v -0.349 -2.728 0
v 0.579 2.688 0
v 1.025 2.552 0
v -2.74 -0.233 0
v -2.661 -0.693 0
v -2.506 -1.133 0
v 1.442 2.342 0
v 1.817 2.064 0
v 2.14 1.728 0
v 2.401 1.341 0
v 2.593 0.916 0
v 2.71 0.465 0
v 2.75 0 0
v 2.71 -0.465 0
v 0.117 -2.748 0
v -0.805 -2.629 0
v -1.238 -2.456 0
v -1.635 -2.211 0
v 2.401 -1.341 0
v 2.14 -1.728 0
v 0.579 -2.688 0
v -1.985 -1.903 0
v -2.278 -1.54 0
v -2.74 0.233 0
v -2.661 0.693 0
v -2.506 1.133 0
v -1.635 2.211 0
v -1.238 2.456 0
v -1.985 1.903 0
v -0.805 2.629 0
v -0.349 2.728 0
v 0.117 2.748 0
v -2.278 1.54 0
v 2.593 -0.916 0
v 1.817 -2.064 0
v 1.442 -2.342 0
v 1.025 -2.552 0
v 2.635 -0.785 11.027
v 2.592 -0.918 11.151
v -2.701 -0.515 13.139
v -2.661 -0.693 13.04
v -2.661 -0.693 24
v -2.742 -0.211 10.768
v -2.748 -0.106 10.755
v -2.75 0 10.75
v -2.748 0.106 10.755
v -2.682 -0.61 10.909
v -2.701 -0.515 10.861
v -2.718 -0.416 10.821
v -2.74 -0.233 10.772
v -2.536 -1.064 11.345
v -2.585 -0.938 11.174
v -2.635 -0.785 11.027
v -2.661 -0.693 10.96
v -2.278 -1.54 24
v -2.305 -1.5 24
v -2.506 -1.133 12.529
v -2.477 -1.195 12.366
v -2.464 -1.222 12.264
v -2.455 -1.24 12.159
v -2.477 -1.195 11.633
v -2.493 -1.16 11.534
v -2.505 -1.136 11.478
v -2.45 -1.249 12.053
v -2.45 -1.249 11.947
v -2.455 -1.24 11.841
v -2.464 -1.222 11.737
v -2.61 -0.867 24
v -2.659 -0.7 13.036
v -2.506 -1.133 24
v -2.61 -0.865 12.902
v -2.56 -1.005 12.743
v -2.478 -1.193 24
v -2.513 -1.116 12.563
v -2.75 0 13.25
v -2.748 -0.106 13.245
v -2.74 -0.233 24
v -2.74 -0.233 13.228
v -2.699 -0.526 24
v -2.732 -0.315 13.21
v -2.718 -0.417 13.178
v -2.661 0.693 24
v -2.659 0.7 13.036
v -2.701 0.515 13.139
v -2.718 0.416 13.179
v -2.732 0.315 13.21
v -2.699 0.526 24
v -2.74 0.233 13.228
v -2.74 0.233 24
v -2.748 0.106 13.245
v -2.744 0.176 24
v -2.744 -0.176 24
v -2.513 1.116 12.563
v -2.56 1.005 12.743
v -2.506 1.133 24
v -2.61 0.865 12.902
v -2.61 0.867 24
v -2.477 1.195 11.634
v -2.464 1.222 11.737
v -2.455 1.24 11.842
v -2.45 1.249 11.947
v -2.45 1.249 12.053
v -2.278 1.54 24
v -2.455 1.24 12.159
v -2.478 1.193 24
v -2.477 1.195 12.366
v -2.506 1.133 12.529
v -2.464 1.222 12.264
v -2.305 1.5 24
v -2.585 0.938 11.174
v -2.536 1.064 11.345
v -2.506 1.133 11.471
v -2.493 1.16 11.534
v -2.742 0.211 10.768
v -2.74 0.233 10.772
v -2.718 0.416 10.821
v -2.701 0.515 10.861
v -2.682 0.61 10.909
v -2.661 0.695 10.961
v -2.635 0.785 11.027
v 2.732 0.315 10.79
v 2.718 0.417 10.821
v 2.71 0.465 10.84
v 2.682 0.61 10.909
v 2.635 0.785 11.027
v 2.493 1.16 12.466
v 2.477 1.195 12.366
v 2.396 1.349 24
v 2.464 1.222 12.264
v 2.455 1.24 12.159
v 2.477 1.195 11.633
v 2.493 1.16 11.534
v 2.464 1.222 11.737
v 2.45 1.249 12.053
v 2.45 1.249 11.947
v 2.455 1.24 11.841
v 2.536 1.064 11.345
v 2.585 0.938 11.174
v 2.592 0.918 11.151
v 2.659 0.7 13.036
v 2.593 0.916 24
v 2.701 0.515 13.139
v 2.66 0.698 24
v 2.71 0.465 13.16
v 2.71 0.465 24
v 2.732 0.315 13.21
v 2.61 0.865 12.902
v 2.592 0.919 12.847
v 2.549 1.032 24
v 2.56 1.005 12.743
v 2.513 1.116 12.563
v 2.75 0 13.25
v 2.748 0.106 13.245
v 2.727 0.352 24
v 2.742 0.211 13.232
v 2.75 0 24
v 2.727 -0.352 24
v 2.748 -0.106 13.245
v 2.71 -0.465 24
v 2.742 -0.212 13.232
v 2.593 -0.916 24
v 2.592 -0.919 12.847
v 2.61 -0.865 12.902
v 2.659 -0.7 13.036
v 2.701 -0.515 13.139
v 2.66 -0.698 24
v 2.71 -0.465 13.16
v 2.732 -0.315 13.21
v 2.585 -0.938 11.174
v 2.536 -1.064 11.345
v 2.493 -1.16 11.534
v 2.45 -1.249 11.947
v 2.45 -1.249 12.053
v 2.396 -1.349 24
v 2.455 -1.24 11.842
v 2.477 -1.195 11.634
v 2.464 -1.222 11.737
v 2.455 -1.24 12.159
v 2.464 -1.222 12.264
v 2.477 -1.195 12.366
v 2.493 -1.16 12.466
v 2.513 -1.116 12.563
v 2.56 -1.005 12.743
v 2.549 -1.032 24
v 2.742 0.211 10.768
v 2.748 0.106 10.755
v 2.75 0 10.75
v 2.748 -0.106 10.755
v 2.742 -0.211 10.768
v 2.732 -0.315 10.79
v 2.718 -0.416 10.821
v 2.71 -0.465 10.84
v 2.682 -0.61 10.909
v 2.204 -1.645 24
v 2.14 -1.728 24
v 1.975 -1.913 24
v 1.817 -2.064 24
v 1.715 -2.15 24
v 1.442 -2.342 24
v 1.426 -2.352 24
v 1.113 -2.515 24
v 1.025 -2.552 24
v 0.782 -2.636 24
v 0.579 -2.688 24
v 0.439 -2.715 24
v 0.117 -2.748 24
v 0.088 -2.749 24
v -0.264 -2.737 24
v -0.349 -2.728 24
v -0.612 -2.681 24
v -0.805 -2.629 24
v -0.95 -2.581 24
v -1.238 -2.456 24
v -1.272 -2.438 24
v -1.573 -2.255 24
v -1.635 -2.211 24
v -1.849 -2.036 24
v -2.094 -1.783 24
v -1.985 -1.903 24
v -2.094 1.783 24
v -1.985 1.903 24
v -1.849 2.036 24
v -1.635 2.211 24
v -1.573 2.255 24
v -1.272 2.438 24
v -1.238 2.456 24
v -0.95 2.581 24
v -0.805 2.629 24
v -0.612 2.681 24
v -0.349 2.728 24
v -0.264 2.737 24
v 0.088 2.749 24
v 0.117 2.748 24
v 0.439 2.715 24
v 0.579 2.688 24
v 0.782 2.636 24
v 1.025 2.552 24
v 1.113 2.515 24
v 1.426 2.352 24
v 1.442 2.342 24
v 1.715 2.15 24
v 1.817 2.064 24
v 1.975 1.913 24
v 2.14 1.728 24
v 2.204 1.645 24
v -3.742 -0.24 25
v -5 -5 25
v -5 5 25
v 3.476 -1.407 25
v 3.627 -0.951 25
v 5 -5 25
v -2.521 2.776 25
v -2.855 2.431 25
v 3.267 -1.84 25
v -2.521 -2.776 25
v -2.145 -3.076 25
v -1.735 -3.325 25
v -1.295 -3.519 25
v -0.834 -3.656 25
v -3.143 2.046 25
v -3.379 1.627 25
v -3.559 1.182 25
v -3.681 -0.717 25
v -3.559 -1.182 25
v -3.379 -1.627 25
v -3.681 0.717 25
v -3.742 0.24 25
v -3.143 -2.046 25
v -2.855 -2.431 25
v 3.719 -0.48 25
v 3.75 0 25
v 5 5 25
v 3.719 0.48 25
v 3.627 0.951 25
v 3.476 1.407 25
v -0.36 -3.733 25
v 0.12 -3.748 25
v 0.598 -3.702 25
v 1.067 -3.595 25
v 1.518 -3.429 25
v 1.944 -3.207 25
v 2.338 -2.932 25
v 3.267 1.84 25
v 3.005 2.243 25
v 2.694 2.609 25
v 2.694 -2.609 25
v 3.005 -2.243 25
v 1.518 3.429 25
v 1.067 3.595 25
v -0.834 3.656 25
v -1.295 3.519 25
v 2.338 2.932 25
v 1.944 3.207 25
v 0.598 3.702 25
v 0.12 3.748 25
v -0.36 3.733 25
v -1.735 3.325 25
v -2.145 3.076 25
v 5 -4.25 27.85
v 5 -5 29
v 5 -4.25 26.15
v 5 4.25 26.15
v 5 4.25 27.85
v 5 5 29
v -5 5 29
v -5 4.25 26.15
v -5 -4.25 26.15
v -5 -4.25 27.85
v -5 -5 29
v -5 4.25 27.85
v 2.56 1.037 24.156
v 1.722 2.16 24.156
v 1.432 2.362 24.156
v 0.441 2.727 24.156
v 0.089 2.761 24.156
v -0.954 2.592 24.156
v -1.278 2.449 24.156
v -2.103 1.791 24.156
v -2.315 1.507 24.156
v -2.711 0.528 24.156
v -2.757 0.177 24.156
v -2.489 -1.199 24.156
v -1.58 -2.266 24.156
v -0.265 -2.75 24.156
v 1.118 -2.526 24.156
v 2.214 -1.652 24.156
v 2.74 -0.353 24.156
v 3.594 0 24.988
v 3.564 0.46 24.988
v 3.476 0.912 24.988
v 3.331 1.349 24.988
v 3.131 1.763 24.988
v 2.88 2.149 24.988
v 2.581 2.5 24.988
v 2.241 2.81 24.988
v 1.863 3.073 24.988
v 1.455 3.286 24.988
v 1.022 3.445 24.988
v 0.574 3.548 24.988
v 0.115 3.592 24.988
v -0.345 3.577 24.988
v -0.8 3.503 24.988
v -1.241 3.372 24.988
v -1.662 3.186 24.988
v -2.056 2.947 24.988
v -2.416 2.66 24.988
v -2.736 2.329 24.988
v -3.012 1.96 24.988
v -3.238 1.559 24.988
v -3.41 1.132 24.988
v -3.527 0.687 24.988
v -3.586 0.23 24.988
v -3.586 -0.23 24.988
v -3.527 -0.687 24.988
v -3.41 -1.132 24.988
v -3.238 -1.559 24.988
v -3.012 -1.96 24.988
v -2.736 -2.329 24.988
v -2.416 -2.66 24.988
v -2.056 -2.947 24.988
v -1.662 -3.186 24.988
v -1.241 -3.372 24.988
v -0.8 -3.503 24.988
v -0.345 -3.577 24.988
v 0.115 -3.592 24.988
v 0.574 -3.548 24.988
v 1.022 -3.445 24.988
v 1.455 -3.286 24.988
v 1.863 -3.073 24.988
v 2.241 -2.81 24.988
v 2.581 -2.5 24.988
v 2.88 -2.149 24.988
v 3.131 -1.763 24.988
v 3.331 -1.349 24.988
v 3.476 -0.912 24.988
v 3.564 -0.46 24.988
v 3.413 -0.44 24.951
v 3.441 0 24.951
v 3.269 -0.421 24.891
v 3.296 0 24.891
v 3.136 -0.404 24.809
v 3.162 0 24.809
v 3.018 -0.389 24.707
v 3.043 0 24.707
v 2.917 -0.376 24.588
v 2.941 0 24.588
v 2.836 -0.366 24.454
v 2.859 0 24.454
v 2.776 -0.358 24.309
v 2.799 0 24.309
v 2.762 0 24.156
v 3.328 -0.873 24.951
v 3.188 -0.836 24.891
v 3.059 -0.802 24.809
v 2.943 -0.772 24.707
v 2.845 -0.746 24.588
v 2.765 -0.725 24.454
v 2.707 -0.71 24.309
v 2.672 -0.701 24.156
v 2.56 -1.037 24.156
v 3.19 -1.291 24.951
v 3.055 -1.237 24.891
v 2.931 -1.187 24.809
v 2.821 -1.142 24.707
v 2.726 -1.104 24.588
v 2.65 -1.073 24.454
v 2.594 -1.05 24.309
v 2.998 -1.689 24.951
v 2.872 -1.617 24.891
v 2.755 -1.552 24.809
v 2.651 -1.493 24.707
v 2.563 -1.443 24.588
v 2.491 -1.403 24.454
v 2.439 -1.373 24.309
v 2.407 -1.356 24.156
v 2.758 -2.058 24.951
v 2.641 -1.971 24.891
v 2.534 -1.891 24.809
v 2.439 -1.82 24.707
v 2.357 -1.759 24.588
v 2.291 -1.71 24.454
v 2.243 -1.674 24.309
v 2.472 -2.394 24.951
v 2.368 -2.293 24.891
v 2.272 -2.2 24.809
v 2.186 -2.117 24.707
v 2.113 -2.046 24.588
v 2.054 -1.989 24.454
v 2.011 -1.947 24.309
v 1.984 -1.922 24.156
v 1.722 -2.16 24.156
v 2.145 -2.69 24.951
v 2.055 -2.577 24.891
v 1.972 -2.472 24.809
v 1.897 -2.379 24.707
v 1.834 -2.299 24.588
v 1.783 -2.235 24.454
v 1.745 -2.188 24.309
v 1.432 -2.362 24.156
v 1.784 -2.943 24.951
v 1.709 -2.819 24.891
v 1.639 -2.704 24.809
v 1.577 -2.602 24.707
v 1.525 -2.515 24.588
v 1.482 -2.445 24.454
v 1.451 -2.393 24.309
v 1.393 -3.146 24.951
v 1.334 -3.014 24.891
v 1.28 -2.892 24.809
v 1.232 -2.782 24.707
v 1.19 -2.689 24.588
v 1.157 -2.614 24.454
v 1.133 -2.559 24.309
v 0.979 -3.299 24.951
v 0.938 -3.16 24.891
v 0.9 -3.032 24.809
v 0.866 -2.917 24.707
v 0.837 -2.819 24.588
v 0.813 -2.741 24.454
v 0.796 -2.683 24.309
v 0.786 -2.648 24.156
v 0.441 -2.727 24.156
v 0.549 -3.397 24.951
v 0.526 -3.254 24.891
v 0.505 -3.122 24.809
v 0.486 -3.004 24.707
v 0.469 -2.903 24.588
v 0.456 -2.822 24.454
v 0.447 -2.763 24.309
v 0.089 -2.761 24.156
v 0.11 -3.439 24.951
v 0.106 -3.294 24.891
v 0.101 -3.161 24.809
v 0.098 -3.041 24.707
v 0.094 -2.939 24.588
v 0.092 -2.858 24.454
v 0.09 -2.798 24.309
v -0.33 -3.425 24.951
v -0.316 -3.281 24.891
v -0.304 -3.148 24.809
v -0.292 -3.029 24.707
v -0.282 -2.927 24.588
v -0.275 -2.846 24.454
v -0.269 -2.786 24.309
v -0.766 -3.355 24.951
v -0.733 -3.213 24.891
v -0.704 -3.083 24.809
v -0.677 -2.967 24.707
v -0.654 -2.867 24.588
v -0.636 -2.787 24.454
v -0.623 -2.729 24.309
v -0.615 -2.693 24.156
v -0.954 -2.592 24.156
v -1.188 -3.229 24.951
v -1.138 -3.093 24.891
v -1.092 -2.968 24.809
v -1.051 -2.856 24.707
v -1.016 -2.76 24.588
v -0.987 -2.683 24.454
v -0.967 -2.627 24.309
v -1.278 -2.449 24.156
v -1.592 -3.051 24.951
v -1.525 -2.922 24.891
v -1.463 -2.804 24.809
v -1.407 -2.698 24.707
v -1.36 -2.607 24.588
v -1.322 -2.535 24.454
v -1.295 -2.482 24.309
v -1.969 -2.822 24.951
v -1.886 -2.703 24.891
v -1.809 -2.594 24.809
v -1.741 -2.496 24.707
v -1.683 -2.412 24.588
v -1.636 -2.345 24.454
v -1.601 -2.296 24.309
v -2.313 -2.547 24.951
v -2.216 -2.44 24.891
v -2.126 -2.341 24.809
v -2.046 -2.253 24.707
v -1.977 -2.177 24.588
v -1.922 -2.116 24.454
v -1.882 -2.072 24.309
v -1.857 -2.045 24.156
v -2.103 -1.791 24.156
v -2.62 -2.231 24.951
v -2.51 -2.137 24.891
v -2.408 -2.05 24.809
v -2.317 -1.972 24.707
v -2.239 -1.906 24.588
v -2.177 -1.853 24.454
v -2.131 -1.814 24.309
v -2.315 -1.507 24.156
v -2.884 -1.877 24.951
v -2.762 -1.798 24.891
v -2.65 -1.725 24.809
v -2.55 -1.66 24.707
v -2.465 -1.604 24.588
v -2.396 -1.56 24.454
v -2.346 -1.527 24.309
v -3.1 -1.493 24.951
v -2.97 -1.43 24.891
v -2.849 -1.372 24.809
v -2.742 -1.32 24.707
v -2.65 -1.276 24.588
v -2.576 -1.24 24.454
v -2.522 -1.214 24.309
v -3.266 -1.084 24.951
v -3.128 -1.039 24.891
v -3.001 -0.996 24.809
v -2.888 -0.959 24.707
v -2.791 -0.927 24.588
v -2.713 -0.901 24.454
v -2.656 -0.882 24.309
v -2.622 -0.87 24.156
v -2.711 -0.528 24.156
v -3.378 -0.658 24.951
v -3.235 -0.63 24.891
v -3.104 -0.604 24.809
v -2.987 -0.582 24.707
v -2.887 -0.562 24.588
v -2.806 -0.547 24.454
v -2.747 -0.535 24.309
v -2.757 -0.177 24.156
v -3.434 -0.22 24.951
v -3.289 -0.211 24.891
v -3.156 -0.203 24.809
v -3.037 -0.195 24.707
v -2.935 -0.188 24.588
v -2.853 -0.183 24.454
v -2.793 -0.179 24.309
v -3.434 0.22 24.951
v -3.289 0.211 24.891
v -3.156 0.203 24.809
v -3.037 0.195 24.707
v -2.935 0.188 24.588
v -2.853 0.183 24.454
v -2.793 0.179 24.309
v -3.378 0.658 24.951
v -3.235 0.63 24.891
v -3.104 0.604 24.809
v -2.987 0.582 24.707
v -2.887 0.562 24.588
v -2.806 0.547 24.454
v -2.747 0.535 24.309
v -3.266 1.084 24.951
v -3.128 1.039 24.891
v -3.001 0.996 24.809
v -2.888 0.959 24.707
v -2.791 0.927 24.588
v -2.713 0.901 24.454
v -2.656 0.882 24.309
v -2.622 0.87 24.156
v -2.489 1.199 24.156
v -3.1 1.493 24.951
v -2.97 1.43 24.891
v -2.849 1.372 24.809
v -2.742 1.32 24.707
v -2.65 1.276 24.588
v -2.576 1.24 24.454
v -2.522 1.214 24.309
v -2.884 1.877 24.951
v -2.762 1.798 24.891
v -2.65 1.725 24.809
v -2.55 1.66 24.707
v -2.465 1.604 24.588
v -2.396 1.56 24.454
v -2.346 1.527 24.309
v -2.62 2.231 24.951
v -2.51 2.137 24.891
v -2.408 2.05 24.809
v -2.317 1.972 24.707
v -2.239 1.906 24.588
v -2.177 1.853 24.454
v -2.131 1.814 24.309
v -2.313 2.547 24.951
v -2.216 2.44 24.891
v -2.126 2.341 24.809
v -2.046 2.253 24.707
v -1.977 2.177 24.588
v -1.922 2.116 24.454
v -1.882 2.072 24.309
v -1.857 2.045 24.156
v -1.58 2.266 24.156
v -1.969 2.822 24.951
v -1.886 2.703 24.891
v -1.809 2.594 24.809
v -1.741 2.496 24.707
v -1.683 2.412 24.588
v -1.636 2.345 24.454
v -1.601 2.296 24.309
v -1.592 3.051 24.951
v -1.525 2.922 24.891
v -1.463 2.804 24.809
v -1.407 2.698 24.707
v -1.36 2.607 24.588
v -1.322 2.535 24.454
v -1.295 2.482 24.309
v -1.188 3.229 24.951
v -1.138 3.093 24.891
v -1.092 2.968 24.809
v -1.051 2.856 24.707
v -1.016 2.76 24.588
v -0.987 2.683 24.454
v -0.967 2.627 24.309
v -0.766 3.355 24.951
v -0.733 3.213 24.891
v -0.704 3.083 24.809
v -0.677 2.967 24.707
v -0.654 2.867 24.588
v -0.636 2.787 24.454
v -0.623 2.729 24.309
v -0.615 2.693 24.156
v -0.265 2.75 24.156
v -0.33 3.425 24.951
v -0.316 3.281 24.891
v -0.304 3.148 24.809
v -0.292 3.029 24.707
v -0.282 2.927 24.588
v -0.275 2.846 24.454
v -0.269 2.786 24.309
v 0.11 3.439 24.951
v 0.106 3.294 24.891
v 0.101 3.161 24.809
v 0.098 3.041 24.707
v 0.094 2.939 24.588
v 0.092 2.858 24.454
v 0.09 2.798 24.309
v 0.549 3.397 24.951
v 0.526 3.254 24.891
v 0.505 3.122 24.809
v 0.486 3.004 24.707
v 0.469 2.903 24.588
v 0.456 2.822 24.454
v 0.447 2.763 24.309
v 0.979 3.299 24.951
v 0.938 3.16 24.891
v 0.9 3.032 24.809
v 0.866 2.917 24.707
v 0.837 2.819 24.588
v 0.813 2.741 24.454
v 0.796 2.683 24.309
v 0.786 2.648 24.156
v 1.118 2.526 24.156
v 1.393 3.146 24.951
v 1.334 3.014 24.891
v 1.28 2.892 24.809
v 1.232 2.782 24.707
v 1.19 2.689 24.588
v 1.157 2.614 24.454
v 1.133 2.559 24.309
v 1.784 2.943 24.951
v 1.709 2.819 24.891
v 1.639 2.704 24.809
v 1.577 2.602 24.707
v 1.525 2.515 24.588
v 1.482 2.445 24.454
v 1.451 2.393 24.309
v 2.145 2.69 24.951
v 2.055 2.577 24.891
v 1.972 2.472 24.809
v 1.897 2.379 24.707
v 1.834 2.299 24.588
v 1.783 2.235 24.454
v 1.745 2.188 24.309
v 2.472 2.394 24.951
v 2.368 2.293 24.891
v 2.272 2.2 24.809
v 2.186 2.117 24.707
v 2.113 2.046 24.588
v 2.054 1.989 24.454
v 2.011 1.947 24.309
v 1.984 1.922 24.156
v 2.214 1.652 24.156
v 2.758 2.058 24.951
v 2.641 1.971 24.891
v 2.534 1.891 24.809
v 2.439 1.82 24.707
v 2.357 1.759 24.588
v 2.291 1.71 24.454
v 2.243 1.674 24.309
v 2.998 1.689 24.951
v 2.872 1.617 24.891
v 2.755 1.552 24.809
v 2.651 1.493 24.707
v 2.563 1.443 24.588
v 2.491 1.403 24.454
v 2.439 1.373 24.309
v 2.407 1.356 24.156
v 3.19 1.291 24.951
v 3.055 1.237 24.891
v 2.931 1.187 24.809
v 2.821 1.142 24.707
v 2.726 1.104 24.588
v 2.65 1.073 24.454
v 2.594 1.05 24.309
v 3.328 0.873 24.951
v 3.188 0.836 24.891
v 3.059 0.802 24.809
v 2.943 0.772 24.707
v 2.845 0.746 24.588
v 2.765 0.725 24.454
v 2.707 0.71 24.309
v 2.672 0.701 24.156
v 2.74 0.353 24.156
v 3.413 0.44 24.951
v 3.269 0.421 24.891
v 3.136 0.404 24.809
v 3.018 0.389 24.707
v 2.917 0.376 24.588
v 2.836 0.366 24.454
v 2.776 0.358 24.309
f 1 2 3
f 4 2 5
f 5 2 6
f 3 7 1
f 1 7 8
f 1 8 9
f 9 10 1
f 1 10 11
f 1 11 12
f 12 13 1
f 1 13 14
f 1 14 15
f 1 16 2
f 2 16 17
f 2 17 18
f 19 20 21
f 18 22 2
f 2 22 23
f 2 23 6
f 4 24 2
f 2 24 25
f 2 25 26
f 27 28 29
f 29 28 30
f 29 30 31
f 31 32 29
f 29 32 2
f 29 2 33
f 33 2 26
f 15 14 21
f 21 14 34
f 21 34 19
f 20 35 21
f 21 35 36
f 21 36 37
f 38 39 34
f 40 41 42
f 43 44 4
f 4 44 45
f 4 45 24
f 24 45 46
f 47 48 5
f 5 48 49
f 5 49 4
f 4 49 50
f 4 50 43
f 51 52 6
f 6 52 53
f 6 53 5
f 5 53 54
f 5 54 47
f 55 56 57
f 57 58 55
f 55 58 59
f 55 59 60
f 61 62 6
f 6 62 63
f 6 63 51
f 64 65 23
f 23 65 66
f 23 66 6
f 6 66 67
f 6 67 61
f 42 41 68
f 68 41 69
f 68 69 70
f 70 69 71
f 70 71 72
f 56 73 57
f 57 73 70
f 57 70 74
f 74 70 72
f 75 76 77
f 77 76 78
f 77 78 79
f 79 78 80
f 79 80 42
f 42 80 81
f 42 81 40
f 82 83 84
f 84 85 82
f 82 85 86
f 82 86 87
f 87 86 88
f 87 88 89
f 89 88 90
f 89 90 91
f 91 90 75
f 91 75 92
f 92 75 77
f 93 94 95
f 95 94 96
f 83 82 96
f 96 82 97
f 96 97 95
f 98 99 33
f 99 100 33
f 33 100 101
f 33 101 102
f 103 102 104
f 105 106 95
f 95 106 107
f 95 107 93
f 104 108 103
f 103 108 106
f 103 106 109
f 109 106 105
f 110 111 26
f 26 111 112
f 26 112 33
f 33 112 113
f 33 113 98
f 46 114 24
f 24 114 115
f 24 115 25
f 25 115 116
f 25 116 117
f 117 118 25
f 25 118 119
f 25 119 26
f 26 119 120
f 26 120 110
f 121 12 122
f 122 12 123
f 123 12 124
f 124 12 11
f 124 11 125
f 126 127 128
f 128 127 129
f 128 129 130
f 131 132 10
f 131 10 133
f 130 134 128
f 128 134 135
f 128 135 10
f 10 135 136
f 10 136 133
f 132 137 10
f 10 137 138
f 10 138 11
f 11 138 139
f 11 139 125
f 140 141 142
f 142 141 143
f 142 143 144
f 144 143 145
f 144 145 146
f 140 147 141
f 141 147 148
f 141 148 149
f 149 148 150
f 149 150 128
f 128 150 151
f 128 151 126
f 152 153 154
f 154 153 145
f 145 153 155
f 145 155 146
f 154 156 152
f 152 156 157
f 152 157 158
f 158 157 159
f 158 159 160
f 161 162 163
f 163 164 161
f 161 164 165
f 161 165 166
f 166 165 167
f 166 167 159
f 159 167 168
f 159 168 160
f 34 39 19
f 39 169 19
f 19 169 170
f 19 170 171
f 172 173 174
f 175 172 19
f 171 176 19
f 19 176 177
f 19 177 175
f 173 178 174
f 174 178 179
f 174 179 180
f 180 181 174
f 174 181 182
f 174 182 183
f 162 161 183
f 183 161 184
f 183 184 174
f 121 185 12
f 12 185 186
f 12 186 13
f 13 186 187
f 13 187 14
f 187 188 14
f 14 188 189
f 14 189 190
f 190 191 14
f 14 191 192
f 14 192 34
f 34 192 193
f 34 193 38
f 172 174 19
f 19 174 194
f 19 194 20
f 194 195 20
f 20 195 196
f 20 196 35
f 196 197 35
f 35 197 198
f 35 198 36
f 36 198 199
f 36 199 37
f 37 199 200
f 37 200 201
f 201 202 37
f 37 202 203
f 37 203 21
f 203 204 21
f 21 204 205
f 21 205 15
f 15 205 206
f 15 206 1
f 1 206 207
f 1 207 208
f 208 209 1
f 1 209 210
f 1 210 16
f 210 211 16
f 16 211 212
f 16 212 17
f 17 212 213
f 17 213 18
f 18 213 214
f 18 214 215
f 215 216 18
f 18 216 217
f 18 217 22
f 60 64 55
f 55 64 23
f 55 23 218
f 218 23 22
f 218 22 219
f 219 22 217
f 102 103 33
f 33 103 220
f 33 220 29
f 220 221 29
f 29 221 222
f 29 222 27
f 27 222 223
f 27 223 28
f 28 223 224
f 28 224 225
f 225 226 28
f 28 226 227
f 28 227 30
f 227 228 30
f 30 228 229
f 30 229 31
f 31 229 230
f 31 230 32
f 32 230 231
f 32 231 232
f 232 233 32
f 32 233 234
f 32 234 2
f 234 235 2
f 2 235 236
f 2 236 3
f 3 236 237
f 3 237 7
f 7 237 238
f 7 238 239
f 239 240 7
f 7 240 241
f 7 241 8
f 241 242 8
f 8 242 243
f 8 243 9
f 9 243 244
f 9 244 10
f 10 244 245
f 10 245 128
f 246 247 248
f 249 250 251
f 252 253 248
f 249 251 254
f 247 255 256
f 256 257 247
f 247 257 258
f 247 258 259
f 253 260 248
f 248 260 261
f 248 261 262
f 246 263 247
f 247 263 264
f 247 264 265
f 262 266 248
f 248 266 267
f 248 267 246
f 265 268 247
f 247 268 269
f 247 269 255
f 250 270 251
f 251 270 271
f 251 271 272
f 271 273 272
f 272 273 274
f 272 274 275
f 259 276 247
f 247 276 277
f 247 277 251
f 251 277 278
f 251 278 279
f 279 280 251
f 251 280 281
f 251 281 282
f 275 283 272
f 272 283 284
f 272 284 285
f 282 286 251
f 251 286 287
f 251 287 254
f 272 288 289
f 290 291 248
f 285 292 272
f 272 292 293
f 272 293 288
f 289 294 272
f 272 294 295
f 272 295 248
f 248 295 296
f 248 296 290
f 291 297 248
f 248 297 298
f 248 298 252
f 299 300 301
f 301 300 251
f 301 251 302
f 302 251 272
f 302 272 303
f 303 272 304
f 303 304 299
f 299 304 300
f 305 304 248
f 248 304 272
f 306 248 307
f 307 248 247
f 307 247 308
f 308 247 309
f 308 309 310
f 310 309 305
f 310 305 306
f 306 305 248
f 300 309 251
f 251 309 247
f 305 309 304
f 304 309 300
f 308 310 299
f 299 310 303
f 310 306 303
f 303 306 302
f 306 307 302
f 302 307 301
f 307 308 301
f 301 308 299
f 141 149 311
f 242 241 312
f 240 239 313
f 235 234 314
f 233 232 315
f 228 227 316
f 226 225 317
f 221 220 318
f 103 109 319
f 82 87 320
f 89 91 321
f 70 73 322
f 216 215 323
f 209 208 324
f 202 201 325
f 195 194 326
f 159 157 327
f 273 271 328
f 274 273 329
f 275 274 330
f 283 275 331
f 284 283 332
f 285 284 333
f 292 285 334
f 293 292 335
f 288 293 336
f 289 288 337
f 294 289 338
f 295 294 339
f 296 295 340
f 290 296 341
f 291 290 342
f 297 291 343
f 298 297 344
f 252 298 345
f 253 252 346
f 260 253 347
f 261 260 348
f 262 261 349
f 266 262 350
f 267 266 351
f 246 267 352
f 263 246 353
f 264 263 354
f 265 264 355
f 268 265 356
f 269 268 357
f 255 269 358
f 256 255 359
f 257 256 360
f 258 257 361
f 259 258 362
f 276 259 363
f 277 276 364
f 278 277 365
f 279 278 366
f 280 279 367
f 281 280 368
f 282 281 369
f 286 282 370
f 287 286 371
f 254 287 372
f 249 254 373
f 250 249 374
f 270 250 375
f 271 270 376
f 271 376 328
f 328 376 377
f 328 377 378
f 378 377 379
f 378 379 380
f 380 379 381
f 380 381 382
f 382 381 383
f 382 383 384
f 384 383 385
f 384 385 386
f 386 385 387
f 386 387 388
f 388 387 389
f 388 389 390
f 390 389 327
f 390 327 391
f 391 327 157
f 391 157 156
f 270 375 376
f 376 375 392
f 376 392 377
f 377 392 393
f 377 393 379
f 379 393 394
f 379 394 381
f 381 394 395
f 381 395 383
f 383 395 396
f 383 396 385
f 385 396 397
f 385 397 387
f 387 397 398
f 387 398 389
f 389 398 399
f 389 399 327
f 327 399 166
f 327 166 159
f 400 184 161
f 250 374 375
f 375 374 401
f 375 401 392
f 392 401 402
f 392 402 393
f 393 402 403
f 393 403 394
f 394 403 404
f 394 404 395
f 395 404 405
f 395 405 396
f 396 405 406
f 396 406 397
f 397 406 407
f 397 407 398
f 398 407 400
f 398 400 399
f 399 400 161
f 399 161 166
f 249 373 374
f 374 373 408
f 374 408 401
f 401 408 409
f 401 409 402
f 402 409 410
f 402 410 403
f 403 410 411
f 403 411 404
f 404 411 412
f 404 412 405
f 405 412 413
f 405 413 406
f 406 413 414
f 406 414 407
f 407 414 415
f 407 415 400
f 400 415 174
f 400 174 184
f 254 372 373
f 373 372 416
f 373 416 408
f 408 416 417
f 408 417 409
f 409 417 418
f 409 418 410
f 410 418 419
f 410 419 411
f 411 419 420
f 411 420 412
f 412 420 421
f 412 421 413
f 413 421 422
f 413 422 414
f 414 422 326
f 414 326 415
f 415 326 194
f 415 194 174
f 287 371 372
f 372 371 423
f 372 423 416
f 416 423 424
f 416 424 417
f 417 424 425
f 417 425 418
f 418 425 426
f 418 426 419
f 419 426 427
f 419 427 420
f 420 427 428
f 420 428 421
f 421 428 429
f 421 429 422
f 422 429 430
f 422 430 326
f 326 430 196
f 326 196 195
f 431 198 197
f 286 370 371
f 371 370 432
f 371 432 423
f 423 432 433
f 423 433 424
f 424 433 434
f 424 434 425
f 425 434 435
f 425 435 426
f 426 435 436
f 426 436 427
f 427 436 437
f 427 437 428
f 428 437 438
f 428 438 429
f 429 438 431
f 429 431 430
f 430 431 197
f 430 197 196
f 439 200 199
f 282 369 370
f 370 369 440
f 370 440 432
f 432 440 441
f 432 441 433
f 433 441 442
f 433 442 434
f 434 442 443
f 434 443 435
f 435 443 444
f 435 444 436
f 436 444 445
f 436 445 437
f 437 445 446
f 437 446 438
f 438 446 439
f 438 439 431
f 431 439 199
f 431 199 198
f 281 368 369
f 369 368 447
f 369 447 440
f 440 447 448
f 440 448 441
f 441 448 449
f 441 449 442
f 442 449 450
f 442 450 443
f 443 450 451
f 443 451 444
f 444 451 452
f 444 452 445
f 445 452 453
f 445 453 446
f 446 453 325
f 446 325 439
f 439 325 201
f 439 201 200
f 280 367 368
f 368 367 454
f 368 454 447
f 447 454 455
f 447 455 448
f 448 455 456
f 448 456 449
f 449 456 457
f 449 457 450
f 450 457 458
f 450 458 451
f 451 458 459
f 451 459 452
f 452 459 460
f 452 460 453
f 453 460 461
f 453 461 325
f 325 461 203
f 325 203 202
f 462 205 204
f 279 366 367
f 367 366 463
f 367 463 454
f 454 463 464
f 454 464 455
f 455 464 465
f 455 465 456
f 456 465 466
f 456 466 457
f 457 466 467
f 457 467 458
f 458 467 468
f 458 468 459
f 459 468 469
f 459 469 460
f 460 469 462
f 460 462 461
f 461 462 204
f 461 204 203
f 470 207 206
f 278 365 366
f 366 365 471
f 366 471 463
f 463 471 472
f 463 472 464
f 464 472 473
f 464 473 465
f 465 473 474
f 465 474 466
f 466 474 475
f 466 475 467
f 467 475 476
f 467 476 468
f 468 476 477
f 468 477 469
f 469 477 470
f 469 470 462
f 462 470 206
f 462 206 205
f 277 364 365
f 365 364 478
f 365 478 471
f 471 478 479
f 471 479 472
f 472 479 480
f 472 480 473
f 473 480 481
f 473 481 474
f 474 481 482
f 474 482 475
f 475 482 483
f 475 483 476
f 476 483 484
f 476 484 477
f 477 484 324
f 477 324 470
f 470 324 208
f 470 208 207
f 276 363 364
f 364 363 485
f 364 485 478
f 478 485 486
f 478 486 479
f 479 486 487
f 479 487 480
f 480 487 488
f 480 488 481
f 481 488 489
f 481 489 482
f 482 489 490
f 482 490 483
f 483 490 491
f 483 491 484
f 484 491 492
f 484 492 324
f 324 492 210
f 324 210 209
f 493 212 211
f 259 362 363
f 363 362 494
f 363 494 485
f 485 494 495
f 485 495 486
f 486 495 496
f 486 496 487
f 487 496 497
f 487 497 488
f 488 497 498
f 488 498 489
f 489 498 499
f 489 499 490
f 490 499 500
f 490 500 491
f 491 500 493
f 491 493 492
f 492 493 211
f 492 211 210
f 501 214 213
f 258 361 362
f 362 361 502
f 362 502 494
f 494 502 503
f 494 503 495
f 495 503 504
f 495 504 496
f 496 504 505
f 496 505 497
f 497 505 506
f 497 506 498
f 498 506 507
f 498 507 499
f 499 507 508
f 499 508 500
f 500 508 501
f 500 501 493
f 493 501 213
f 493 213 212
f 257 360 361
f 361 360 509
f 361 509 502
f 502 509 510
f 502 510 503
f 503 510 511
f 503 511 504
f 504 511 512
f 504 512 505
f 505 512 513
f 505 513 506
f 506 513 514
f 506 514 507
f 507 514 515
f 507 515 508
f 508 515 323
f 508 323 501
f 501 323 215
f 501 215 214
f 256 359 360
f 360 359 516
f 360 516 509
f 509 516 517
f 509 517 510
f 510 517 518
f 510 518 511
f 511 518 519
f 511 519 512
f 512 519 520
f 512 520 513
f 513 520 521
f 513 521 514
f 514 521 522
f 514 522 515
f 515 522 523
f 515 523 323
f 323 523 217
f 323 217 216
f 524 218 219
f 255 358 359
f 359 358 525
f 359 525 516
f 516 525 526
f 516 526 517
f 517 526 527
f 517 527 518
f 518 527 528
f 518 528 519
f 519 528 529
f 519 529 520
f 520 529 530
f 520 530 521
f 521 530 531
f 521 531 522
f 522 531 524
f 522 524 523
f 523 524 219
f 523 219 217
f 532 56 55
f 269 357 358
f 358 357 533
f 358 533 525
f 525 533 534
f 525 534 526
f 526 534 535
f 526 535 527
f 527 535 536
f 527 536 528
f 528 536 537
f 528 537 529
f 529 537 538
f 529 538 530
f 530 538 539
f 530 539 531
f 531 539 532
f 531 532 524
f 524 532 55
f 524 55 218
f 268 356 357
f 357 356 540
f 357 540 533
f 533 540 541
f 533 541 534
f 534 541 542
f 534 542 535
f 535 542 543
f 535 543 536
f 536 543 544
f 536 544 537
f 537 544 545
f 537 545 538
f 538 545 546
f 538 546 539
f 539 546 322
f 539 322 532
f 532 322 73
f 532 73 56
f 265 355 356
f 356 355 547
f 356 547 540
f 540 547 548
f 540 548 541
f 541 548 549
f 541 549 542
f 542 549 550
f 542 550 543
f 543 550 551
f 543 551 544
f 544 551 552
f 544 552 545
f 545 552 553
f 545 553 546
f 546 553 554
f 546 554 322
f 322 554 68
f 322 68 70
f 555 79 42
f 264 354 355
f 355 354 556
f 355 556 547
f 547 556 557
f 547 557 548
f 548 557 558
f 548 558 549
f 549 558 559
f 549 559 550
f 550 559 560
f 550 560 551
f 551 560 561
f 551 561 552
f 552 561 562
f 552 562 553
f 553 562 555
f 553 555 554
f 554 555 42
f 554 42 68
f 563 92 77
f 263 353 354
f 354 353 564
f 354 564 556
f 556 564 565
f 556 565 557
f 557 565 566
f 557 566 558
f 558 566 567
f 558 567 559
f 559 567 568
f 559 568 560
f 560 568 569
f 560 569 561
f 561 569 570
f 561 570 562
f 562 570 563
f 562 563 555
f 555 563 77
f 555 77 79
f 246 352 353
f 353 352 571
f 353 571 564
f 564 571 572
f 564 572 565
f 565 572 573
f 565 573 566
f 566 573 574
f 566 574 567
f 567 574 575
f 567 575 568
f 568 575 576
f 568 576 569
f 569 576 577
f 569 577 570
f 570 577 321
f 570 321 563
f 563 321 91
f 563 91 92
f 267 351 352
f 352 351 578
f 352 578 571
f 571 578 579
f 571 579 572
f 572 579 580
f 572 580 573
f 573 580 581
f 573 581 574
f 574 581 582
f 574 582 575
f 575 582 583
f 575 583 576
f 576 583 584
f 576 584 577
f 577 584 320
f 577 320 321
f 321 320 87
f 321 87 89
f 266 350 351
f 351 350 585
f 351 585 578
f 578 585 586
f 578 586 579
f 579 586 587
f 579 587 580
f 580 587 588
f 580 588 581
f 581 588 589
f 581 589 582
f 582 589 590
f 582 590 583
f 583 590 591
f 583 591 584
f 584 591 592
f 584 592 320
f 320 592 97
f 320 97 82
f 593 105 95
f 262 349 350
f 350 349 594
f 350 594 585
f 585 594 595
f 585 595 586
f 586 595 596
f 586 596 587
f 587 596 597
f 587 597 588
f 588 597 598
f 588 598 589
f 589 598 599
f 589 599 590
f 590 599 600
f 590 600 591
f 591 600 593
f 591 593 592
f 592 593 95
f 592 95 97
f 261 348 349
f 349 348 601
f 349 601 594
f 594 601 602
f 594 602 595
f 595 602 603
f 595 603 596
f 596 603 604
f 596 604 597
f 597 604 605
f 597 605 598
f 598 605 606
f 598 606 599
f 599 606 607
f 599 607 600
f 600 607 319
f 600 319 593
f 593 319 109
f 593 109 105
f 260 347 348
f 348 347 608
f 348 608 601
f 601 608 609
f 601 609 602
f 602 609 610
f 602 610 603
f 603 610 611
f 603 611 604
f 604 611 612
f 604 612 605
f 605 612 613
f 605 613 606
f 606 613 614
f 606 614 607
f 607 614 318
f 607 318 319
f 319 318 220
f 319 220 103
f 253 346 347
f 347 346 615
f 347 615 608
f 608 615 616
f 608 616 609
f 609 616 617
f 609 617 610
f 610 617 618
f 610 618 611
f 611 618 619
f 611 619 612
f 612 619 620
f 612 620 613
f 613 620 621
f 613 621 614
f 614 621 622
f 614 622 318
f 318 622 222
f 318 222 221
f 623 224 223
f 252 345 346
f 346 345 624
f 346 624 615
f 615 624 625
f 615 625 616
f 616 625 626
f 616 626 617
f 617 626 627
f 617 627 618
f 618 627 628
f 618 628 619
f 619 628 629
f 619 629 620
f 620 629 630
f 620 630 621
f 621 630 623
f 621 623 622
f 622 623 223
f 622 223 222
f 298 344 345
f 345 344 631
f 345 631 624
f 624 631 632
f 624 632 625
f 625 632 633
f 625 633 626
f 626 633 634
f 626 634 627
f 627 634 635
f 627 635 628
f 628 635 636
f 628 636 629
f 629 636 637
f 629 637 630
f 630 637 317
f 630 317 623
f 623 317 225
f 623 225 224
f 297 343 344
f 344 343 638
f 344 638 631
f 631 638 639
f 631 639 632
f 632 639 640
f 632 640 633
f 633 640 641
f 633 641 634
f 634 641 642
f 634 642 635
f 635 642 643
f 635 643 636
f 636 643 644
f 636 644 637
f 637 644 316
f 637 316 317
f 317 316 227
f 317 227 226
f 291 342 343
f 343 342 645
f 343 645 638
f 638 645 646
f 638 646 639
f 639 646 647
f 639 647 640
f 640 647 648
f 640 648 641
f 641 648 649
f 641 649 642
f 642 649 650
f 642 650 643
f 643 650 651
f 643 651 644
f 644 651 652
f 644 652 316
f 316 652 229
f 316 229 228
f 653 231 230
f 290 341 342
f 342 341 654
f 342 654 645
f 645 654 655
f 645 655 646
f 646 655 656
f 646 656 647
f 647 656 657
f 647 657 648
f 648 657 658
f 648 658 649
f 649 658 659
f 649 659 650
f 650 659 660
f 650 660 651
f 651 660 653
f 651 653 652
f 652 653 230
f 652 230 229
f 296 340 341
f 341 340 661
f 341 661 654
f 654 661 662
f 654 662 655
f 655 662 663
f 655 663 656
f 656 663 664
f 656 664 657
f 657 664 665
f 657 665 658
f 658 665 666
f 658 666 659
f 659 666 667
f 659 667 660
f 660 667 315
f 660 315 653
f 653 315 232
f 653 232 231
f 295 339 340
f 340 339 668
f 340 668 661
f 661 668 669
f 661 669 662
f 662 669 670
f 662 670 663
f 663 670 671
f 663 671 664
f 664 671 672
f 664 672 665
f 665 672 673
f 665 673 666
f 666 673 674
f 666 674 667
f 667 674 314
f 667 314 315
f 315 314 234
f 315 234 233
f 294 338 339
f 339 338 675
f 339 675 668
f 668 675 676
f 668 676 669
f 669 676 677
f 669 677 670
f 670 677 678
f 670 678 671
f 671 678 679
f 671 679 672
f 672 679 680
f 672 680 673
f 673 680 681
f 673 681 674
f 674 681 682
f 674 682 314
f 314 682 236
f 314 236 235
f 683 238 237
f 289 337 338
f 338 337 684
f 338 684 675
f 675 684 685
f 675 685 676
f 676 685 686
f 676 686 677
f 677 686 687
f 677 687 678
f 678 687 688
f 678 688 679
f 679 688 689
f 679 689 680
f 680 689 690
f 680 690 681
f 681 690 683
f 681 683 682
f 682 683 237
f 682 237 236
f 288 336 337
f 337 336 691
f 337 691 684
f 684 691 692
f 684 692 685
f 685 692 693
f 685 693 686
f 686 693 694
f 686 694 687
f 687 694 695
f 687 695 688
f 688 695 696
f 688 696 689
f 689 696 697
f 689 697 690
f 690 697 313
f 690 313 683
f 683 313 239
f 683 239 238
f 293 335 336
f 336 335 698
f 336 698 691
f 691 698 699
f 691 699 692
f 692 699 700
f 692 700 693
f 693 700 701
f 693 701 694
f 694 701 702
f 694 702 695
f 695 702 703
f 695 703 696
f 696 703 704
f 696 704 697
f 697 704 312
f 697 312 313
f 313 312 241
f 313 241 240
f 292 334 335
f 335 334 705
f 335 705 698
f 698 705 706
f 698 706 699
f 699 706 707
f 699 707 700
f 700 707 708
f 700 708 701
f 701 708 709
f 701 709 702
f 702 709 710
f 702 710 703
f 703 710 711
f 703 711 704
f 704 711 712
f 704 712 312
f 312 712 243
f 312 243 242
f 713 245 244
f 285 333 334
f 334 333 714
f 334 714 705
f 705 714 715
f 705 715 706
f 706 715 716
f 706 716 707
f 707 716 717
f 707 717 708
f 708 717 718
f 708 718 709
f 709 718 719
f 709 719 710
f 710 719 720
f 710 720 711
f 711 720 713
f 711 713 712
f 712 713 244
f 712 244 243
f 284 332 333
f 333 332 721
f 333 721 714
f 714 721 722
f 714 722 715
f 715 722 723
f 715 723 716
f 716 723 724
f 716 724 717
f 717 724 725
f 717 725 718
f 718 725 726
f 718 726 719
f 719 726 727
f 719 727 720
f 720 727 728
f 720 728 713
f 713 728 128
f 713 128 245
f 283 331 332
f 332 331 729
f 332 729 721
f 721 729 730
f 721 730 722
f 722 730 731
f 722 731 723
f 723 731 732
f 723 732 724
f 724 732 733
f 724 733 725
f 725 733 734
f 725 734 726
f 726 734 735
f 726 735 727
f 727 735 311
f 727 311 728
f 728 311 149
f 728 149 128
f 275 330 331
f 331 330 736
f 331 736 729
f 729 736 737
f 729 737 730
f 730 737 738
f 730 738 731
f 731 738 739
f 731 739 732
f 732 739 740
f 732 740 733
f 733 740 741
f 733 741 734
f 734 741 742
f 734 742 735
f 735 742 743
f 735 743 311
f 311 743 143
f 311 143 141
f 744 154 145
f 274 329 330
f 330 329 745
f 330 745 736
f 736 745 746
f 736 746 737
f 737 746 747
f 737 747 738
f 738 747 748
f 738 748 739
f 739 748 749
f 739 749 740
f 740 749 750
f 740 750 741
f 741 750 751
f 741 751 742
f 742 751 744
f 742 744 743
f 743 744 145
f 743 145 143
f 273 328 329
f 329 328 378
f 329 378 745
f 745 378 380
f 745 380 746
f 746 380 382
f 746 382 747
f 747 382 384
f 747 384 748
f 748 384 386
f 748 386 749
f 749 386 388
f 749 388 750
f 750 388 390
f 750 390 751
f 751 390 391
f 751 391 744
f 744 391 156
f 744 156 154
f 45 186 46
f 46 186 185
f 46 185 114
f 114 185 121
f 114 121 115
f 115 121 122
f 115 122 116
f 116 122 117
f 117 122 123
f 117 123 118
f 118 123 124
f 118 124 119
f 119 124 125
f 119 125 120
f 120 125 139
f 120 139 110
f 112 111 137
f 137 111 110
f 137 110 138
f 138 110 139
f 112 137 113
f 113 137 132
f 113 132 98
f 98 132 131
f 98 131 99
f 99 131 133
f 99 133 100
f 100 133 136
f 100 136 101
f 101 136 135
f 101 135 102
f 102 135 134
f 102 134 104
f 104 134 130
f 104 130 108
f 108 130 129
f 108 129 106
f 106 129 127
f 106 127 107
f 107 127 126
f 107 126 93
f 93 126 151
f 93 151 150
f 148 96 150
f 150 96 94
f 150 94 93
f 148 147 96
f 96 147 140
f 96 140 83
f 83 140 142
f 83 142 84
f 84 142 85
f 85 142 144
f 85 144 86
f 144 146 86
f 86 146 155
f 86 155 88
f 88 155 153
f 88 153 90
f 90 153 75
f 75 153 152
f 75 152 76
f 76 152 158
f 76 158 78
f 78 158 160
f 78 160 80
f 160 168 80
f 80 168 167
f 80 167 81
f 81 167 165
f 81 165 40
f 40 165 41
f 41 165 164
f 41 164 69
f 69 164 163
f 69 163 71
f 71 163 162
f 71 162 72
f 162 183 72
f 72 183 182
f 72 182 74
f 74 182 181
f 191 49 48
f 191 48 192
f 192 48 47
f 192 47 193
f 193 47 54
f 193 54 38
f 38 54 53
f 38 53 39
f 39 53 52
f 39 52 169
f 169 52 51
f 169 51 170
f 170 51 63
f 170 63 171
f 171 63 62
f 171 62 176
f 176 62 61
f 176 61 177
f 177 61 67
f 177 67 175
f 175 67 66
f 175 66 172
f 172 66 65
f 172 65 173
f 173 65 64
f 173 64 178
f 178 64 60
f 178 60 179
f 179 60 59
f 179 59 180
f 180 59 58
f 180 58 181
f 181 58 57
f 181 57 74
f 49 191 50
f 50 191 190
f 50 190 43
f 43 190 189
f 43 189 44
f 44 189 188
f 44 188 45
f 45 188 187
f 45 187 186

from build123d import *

# Parameters (mm, degrees)
SKETCH2_R               = 2.75
SKETCH3_R               = 2.75
SKETCH3_7_W             = 10
SKETCH3_7_H             = 10
BOSS_EXTRUDE4_DEPTH     = 4
SKETCH8_W               = 1.7
SKETCH8_H               = 8.5
CUT_EXTRUDE2_DEPTH      = 1
CUT_EXTRUDE2_DEPTH_BACK = 11
FILLET1_R               = 1
SKETCH11_R              = 1.25
CUT_EXTRUDE4_DEPTH      = 6
CUT_EXTRUDE4_DEPTH_BACK = 6


with BuildPart() as part:
    # Sketch2 → Loft1 section 0
    with BuildSketch(Plane.XY):
        Circle(SKETCH2_R)
    # Sketch3 → Loft1 section 1
    with BuildSketch(Plane.XY.offset(25)):
        Circle(SKETCH3_R)
    loft()

    # Sketch3<7> → Boss-Extrude4 (add)
    with BuildSketch(Plane.XY.offset(25)):
        Rectangle(SKETCH3_7_W, SKETCH3_7_H)
    extrude(amount=BOSS_EXTRUDE4_DEPTH)

    # Sketch8 → Cut-Extrude2 (cut, two sides)
    with BuildSketch(Plane(origin=(5, 0, 0), x_dir=(0, 0, -1), z_dir=(1, 0, 0))) as cut_extrude2_sk:
        with Locations((-27, 0)):
            Rectangle(SKETCH8_W, SKETCH8_H)
    extrude(amount=CUT_EXTRUDE2_DEPTH, mode=Mode.SUBTRACT)
    extrude(cut_extrude2_sk.sketch, amount=-CUT_EXTRUDE2_DEPTH_BACK, mode=Mode.SUBTRACT)

    # Fillet1
    fillet1_edges = [part.edges().sort_by_distance(p)[0] for p in [
        (-2.75, 0, 25),
    ]]
    fillet(fillet1_edges, radius=FILLET1_R)

    # Sketch11 → Cut-Extrude4 (cut, two sides)
    with BuildSketch(Plane(origin=(0, 0, 0), x_dir=(0, 0, -1), z_dir=(1, 0, 0))) as cut_extrude4_sk:
        with Locations((-12, 0)):
            Circle(SKETCH11_R)
    extrude(amount=CUT_EXTRUDE4_DEPTH, mode=Mode.SUBTRACT)
    extrude(cut_extrude4_sk.sketch, amount=-CUT_EXTRUDE4_DEPTH_BACK, mode=Mode.SUBTRACT)


solid = part.part
